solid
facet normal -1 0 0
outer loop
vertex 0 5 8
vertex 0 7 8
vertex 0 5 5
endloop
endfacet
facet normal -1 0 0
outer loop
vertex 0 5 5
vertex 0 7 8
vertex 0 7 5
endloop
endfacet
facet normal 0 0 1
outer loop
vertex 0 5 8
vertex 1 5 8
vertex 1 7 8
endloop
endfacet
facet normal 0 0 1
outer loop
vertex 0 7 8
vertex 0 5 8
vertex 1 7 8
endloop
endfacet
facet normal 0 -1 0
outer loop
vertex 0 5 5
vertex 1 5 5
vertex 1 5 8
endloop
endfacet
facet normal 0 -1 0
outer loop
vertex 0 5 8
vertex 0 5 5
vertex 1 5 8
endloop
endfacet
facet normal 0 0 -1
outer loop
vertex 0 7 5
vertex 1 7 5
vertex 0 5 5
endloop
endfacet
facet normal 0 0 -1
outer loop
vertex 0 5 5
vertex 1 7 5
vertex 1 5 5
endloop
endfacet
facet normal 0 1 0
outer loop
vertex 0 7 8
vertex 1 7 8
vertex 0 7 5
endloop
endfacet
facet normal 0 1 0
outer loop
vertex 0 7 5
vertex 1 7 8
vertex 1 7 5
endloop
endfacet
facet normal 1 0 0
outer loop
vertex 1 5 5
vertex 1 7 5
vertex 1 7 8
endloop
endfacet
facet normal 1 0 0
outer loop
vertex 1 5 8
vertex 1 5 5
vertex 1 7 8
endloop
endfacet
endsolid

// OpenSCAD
translate([0,5,5]){
  scale([1,2,3]){
    cube([1,1,1]);
  }
}
